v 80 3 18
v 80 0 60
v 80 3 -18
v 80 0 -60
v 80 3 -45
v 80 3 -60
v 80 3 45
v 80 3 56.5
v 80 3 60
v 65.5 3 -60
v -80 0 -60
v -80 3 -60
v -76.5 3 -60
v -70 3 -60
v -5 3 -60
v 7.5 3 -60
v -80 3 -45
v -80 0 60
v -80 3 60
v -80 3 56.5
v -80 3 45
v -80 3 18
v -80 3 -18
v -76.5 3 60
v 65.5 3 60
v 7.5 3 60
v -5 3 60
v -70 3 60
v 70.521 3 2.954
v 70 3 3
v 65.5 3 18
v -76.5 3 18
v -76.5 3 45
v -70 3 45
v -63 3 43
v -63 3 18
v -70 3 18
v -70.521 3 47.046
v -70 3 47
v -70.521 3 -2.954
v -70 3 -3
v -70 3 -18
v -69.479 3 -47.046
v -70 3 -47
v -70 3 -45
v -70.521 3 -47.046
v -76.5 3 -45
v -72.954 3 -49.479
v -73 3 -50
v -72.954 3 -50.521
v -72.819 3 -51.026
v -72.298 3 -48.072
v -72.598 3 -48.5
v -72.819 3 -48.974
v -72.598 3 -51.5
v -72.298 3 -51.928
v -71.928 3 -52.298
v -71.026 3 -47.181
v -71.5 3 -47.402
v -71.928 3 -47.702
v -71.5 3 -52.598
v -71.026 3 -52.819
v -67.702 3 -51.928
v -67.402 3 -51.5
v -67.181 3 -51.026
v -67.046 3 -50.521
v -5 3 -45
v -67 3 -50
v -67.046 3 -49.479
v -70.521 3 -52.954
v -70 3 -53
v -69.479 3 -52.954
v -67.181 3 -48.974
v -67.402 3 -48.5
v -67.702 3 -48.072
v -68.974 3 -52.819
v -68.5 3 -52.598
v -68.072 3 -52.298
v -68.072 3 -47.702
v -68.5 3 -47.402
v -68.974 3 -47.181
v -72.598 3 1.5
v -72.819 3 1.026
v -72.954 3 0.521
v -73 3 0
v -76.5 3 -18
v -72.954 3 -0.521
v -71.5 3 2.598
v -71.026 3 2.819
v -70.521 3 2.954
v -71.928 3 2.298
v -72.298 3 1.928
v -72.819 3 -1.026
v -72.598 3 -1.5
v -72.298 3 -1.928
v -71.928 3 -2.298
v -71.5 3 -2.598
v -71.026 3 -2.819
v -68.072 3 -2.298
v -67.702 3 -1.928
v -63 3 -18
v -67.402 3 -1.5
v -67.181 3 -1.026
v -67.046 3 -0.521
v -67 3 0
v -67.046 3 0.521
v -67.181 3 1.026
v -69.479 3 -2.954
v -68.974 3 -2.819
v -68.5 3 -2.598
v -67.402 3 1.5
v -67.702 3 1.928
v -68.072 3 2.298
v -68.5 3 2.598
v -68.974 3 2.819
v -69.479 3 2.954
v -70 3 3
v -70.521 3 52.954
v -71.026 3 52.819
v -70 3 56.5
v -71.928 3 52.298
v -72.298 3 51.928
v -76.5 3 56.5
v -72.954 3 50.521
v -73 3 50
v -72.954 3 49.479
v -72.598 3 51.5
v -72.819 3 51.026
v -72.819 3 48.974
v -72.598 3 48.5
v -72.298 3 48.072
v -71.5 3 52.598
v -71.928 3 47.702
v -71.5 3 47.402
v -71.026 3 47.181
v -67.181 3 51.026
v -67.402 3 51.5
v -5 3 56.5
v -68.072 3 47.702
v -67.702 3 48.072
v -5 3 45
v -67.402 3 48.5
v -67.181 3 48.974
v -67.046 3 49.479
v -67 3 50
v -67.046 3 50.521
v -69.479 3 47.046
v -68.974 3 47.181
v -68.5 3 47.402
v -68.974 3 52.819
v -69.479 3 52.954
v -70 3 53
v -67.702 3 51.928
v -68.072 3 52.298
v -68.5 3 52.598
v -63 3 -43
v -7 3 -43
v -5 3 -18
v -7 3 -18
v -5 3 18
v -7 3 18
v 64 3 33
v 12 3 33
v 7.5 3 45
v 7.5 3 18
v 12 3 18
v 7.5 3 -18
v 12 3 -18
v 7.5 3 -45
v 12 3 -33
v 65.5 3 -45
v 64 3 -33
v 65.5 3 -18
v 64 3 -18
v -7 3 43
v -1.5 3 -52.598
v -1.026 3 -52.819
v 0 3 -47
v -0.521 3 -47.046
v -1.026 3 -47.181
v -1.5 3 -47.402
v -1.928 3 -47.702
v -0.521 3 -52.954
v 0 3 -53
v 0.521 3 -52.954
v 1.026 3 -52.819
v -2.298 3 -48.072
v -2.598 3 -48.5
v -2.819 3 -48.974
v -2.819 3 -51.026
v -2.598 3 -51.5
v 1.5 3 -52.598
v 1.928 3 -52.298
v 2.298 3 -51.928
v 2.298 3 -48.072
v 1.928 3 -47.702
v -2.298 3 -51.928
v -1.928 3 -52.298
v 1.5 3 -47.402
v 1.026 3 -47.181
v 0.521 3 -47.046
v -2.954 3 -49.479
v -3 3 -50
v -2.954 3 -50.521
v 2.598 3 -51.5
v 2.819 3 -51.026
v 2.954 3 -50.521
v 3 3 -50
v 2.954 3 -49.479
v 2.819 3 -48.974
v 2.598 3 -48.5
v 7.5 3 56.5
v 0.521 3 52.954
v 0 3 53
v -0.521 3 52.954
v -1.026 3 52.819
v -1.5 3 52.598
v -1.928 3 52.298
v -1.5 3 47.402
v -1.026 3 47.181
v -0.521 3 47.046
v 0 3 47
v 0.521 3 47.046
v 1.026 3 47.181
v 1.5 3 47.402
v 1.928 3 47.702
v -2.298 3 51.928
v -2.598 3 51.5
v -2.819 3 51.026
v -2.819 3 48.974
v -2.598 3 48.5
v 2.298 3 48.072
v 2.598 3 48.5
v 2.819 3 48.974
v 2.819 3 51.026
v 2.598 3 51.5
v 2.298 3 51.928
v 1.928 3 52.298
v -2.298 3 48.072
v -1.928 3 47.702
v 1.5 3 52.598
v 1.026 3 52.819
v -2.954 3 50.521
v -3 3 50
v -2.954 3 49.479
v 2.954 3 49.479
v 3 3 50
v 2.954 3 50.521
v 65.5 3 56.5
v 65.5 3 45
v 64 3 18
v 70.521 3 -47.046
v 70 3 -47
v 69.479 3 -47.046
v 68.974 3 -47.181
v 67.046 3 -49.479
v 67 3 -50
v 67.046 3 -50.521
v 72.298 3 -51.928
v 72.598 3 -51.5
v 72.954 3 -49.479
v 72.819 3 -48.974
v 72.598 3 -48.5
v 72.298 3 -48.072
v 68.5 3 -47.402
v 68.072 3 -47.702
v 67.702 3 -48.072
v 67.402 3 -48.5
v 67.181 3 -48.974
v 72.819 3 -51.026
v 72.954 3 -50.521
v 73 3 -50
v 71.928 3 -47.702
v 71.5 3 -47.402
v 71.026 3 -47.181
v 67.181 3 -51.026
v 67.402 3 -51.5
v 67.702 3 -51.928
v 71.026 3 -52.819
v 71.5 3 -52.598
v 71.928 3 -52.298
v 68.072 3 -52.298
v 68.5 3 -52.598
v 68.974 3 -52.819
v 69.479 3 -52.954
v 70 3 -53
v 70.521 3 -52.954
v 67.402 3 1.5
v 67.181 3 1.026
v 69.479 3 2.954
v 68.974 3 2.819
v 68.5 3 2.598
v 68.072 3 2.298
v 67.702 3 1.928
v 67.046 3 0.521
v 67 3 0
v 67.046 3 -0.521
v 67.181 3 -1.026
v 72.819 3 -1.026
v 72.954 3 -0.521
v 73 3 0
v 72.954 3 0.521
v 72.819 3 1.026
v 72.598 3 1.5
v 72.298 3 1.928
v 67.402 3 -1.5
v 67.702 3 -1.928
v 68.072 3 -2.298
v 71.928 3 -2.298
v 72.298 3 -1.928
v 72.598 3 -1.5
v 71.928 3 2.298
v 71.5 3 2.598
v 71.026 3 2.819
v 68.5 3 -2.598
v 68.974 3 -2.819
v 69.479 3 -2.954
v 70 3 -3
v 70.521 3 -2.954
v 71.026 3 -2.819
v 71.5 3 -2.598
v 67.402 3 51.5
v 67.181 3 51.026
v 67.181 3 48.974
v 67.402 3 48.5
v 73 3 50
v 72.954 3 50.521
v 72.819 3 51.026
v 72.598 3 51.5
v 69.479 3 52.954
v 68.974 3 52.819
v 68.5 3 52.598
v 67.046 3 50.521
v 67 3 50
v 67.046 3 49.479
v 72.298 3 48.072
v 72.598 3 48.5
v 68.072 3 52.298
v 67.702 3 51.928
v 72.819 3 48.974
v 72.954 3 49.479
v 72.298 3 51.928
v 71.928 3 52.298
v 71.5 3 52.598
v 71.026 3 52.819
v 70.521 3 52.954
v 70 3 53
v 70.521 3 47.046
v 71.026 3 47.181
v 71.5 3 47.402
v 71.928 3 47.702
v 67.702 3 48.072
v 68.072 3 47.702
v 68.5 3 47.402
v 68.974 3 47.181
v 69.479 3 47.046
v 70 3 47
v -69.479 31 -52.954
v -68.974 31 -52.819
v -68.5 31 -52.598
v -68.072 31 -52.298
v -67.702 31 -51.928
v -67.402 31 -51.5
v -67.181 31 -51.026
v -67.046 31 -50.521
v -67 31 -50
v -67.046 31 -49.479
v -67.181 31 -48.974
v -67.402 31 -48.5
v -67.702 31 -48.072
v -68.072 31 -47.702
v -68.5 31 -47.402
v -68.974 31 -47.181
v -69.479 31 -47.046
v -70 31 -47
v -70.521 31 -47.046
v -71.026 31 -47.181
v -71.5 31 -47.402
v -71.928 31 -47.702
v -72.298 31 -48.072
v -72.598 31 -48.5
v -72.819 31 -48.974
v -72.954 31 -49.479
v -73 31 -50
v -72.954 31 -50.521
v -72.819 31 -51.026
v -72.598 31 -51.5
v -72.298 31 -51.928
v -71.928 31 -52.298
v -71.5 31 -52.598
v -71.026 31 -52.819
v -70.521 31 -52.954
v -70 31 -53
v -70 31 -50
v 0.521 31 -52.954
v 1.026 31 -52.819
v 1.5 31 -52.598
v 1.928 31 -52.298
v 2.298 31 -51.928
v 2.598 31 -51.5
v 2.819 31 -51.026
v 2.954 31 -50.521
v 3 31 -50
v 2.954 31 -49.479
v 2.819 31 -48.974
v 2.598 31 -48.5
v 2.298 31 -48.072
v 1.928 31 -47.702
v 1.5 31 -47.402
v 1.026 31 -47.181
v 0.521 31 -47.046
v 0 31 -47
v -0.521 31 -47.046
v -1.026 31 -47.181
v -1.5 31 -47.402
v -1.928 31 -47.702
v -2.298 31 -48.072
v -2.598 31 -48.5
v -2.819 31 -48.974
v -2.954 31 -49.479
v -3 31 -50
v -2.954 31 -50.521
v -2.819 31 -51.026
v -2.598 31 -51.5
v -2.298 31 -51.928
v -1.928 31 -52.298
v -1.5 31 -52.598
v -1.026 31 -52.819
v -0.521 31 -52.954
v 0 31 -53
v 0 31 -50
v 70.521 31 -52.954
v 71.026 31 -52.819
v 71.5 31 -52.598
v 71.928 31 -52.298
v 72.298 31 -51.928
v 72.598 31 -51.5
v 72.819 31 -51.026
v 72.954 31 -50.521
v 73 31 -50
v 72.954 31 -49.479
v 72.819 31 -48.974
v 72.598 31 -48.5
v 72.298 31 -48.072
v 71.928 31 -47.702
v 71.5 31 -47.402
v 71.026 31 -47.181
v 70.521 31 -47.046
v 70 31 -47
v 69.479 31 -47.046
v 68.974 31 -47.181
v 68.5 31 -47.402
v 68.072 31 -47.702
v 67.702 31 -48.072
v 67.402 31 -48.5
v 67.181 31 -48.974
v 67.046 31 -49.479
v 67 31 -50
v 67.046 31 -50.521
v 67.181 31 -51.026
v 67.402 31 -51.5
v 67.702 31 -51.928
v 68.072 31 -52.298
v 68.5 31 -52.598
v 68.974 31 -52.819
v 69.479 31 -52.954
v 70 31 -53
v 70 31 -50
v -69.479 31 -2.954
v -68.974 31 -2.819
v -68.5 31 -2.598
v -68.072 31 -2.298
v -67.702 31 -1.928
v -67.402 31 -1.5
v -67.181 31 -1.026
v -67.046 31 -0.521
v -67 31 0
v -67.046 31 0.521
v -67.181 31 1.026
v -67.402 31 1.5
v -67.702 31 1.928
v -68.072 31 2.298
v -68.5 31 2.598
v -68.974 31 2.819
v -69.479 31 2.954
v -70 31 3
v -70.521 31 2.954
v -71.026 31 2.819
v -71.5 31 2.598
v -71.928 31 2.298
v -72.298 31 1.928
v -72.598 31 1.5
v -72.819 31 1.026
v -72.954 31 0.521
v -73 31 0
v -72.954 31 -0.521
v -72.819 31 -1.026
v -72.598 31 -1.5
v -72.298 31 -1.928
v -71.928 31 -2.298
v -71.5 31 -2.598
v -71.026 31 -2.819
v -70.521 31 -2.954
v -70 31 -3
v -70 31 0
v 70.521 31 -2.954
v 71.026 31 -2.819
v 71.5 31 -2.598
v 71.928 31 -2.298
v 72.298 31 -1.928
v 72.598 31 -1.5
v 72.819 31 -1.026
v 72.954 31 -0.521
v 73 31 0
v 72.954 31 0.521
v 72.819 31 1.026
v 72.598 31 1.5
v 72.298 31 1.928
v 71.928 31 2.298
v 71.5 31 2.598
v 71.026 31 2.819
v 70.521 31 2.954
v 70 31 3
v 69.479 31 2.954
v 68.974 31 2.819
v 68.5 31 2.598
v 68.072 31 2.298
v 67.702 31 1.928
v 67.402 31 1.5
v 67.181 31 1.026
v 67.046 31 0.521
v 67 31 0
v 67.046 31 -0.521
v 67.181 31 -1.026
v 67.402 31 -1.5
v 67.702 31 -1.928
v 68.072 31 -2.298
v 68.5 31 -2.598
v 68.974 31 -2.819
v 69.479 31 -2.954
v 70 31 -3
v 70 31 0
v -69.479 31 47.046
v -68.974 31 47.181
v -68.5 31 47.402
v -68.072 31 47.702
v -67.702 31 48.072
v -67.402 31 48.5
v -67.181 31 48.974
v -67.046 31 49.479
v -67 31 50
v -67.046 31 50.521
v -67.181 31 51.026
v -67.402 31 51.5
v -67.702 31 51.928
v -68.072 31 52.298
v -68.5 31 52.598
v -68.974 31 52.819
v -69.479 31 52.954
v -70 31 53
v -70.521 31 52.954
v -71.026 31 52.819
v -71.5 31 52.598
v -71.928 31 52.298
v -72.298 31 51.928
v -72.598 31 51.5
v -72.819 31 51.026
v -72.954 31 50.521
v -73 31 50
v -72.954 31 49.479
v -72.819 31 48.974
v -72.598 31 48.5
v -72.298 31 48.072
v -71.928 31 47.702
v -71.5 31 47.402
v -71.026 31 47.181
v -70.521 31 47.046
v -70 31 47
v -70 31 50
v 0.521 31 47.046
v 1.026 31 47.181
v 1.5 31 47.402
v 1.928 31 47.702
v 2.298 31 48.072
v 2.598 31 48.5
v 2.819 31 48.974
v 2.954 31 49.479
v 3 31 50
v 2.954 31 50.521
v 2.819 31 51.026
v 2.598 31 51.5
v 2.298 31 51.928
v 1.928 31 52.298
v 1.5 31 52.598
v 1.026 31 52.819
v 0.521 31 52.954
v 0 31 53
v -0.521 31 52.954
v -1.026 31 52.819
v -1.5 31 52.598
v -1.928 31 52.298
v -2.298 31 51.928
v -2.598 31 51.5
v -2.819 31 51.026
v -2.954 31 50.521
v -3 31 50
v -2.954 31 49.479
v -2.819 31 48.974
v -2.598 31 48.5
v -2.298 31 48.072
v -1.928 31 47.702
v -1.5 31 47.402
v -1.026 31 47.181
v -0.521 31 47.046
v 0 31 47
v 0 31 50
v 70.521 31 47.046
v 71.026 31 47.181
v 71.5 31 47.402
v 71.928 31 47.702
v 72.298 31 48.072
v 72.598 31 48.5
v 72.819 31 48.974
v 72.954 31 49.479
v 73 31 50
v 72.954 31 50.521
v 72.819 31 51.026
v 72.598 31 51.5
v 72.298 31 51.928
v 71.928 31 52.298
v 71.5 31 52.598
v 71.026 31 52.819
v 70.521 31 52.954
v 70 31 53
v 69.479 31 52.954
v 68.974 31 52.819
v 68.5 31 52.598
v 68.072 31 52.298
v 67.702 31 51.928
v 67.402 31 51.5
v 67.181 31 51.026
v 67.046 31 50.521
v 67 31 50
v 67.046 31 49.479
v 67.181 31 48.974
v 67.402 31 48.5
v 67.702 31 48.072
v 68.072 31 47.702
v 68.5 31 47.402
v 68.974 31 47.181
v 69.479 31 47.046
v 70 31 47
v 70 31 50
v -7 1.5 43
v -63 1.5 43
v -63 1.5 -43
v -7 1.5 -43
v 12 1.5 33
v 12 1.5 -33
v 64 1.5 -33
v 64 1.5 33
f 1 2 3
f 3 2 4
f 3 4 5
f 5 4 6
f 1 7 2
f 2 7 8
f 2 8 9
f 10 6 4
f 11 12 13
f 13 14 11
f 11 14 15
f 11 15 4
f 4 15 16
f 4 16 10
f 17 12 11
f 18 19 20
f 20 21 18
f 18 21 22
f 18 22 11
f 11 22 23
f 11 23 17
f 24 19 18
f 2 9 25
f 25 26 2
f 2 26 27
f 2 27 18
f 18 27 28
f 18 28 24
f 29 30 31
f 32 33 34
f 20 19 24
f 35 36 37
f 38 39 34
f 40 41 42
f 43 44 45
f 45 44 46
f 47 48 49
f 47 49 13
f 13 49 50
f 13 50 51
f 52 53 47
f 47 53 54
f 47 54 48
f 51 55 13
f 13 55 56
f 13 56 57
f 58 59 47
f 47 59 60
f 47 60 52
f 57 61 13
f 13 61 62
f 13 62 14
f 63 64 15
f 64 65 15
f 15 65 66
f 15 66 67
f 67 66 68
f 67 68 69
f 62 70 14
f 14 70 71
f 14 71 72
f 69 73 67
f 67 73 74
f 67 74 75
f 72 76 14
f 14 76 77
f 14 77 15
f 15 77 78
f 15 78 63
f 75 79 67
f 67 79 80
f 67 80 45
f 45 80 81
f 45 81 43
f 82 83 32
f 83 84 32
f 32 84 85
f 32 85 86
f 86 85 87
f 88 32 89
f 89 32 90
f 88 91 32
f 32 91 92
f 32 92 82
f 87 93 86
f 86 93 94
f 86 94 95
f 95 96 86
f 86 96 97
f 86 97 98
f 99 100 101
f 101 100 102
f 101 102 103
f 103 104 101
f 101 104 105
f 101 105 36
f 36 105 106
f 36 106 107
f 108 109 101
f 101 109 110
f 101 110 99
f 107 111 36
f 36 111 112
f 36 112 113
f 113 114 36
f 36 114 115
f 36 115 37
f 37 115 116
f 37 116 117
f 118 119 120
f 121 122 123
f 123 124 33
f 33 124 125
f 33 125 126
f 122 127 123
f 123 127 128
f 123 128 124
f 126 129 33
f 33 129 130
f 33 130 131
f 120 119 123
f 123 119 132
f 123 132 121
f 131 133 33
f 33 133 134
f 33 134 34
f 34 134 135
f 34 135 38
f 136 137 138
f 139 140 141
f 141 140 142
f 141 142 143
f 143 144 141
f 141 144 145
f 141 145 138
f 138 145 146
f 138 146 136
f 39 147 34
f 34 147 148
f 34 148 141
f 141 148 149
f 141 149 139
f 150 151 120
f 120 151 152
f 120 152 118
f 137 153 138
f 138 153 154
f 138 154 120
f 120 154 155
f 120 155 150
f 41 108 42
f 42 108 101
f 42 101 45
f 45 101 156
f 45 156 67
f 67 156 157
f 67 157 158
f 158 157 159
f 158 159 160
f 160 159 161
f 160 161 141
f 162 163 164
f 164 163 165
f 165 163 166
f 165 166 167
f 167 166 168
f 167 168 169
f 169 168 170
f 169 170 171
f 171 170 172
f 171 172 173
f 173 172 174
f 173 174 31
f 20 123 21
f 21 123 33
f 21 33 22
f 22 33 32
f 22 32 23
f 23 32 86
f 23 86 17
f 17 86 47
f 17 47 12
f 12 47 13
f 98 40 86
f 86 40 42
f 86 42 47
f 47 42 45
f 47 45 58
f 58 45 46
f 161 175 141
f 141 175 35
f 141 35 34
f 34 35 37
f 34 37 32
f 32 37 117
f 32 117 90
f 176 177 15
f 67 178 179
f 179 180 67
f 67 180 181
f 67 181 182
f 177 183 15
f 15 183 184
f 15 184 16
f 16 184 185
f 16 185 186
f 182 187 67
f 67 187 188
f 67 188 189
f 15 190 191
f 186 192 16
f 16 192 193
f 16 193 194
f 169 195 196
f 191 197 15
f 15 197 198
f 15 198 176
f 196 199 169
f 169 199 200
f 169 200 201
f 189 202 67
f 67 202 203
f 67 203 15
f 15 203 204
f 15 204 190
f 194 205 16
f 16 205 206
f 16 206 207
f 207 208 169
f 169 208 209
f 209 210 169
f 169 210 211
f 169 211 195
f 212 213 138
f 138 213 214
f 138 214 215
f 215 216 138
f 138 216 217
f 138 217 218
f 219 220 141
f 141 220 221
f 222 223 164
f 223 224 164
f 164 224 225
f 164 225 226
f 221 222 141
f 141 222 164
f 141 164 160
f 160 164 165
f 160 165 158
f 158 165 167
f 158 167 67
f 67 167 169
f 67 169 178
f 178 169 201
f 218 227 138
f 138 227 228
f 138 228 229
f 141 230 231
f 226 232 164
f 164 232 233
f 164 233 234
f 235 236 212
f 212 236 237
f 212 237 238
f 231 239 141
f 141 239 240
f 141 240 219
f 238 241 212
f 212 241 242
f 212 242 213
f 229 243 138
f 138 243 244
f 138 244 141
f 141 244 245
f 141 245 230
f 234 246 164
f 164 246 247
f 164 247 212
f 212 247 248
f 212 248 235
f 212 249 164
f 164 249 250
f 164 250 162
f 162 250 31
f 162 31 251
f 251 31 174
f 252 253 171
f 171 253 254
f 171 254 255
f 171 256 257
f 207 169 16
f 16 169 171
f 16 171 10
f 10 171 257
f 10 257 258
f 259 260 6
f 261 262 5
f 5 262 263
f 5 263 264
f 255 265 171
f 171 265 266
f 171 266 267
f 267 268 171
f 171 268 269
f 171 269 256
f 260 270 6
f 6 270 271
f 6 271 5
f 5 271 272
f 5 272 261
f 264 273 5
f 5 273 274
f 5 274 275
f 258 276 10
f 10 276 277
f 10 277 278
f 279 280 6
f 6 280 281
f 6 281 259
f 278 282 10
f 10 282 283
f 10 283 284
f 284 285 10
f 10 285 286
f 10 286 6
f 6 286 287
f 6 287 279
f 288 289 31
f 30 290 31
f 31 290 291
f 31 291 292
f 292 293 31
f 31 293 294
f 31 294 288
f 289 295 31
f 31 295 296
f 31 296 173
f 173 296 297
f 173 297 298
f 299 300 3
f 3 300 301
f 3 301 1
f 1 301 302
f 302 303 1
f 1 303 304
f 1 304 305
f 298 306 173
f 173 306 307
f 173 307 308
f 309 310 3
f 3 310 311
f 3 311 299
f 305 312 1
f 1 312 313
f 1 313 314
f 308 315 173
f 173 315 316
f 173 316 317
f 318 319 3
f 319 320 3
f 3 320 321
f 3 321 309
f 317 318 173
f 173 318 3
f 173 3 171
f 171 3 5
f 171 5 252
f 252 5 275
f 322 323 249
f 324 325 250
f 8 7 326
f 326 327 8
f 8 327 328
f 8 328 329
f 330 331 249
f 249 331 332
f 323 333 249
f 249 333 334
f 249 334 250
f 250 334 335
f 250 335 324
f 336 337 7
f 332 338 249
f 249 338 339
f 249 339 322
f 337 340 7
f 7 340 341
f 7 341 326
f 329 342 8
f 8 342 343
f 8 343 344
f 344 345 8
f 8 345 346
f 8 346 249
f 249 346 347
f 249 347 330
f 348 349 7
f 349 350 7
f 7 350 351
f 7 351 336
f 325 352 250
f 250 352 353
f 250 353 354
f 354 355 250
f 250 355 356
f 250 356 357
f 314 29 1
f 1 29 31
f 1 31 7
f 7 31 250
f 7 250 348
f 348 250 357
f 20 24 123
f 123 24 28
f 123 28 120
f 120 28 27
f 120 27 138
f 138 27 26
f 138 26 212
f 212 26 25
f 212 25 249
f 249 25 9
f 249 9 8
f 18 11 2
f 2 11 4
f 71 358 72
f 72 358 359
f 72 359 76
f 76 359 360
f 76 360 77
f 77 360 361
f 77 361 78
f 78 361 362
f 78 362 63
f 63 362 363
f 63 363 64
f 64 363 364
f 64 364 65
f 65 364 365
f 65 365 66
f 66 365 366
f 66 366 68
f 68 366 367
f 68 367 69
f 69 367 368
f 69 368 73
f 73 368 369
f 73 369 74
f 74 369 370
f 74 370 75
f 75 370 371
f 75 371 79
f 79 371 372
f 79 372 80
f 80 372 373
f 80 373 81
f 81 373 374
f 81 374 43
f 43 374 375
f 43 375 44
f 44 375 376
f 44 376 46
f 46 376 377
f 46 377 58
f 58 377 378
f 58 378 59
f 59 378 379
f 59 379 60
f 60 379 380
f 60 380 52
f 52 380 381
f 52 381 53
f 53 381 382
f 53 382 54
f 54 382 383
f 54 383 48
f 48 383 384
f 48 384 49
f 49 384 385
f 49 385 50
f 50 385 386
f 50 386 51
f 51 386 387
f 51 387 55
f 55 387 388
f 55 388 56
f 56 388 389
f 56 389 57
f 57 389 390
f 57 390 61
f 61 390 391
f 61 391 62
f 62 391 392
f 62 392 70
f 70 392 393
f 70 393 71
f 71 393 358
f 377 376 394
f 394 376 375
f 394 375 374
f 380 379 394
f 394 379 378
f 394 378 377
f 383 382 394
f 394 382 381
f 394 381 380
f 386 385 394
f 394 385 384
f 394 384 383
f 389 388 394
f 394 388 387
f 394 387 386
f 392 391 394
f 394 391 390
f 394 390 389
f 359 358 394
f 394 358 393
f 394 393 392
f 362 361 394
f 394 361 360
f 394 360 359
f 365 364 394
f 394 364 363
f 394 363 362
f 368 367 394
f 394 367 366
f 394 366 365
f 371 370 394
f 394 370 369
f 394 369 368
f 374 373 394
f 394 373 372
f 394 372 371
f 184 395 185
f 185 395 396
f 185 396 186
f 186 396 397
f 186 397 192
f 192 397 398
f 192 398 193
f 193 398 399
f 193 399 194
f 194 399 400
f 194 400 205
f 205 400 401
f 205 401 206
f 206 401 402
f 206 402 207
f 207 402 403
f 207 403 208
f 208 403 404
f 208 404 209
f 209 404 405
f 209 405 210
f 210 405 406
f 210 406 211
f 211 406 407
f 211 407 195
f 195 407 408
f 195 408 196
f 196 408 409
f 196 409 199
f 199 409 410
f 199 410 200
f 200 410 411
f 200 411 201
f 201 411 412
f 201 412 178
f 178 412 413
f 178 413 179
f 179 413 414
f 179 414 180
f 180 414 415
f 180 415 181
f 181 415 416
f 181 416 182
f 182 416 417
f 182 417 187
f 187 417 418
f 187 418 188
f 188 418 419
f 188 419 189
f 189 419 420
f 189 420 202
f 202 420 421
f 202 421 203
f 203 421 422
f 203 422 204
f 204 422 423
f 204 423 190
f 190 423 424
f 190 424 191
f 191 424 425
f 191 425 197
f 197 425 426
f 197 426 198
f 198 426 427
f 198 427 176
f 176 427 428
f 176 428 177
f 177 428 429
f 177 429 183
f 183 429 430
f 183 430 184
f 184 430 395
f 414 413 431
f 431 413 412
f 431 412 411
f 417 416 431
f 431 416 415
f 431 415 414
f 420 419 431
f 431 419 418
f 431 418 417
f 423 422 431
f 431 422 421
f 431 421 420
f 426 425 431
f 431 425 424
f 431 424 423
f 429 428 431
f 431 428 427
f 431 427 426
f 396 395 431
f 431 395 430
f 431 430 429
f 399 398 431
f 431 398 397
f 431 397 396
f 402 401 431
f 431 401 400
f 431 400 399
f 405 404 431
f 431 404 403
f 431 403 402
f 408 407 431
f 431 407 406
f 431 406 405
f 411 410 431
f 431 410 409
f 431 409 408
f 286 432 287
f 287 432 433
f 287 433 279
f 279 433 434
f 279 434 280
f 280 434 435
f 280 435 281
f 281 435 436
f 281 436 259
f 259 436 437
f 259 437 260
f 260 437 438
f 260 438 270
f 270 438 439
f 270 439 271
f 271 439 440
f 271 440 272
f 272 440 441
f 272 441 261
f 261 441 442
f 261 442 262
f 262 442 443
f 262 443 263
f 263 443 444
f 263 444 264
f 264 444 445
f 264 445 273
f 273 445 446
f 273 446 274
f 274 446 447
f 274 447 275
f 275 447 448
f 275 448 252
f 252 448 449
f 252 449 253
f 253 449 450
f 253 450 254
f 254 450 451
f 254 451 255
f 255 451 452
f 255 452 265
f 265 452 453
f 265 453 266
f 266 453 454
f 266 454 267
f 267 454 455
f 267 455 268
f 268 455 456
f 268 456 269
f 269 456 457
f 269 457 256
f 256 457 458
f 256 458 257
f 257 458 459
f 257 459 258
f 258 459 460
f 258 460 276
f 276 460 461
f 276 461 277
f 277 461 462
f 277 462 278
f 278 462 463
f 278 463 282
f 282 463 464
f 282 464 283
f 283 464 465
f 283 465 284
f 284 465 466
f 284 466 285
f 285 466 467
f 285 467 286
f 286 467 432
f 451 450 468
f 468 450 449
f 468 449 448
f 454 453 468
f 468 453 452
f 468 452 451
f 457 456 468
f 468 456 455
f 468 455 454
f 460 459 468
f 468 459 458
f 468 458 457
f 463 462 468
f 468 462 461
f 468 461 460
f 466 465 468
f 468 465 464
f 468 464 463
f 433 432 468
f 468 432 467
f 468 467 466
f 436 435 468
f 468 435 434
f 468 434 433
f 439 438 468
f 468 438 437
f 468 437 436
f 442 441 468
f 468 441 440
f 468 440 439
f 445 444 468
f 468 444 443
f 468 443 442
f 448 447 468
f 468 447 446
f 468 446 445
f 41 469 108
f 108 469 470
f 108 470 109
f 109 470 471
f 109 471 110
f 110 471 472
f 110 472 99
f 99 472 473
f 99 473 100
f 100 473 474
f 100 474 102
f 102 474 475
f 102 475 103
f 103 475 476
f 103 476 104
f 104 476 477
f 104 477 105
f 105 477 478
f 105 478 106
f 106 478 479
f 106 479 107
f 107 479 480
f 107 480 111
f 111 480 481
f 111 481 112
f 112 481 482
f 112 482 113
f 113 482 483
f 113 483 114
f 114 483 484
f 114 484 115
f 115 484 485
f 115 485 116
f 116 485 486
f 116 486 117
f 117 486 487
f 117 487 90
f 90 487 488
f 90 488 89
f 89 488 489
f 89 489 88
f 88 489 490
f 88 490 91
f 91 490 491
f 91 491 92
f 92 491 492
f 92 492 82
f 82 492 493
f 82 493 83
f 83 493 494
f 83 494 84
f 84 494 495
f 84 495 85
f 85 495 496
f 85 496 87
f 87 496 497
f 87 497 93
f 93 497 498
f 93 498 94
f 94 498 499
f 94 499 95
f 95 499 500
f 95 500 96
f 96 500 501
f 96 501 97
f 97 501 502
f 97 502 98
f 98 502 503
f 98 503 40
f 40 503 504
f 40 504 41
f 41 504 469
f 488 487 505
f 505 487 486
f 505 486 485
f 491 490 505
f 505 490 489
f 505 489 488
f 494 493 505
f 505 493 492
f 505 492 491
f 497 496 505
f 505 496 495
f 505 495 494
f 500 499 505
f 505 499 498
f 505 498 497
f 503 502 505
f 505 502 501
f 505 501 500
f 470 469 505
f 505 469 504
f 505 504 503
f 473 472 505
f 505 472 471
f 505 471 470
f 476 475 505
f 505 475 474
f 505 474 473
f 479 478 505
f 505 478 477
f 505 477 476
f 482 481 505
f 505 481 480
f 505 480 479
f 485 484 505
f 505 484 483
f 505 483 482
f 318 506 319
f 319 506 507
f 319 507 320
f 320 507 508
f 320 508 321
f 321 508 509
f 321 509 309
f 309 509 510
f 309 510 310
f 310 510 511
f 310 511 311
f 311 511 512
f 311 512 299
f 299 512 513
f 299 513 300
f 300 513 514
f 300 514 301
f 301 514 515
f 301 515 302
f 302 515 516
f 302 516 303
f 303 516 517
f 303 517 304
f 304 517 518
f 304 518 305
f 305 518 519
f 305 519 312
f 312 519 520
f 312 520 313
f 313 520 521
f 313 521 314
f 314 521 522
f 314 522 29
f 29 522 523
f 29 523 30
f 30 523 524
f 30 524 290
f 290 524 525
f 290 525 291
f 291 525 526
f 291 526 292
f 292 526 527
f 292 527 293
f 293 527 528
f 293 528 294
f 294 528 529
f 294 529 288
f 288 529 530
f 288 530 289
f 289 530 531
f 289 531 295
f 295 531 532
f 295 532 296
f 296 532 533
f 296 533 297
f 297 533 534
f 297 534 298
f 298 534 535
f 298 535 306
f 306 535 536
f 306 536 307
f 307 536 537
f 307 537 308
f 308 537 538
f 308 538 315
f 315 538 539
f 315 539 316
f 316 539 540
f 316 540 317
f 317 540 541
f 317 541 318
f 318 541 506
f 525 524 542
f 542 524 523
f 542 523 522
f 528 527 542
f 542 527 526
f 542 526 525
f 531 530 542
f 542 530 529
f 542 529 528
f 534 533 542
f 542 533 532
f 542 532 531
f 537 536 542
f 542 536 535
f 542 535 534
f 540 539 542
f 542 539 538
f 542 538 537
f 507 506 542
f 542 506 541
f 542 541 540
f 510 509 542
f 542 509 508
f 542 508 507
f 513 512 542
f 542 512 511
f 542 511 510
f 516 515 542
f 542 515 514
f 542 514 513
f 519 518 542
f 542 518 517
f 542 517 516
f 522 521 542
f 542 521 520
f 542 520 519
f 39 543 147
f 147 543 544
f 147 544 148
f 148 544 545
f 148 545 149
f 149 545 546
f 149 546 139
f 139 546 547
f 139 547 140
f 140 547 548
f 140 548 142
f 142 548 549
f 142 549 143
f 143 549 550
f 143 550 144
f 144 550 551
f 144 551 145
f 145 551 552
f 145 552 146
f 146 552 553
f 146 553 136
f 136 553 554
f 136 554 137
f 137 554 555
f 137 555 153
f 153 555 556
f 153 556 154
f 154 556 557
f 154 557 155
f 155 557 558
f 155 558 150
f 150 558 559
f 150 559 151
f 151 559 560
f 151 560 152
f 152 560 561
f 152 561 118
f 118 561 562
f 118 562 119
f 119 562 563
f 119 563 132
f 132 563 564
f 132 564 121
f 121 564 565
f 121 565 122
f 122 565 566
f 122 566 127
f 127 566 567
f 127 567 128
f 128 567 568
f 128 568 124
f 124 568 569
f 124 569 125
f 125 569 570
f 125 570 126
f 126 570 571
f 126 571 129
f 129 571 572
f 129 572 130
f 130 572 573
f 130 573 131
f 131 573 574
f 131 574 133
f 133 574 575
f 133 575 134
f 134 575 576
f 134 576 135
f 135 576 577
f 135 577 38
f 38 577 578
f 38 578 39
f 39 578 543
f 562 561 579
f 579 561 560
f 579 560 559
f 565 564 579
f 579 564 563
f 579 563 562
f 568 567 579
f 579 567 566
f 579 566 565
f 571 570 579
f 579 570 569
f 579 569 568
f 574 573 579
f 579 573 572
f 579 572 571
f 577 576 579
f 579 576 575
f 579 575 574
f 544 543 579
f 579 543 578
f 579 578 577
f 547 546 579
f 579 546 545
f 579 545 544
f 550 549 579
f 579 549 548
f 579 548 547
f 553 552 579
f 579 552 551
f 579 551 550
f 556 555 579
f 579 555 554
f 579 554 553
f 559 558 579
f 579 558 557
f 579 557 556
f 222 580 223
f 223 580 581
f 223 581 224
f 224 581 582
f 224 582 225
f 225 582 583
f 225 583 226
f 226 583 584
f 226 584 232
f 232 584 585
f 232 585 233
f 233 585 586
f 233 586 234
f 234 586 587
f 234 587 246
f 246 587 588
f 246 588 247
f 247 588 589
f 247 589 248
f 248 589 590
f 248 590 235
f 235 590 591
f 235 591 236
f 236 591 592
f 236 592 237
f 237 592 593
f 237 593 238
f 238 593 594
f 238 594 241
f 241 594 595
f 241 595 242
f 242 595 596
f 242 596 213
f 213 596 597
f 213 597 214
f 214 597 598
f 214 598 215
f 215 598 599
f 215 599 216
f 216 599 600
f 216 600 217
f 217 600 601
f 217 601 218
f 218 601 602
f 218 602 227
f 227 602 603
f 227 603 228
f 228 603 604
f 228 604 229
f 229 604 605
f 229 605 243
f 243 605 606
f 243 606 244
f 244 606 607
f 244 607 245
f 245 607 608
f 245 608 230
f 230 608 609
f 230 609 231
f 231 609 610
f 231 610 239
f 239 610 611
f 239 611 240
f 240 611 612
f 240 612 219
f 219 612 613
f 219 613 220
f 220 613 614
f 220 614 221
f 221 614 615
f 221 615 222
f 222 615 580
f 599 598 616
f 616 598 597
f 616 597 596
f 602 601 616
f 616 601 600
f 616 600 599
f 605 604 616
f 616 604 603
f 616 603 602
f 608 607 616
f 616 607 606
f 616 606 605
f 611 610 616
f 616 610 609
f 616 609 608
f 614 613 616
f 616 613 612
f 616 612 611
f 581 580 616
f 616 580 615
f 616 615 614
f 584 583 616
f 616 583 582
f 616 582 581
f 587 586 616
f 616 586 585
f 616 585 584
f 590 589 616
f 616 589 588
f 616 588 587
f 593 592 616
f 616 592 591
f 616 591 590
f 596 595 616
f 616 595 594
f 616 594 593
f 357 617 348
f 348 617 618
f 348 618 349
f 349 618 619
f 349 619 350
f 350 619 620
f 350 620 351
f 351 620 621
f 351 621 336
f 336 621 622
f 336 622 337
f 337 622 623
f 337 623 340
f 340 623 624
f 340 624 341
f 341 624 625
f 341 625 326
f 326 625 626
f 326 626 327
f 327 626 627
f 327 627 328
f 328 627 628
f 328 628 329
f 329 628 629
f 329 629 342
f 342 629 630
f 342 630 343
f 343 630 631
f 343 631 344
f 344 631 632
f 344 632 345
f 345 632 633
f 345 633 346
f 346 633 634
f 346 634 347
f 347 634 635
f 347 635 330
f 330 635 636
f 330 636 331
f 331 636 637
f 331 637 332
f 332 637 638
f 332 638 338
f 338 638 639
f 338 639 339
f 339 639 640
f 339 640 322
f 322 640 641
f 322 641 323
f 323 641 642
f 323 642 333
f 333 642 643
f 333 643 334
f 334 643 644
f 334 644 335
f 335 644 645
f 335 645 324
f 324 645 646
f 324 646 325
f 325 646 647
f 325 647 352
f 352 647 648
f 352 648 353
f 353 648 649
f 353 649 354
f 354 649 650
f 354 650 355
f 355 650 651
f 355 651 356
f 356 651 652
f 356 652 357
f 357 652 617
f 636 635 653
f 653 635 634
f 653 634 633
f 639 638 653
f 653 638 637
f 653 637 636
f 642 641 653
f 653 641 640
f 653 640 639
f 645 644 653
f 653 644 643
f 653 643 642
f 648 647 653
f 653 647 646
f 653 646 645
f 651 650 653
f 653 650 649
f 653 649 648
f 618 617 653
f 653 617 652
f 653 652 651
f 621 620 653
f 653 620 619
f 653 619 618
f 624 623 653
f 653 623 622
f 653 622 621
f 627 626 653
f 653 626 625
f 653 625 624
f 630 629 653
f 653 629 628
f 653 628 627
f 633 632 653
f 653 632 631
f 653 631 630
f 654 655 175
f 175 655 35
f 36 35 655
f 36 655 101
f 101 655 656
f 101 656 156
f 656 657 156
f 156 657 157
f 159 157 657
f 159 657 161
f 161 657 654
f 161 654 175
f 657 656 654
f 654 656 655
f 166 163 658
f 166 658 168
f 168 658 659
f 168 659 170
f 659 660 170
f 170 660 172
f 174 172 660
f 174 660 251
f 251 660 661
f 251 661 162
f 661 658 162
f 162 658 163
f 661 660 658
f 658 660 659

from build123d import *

# Parameters (mm, degrees)
SKETCH1_W           = 160
SKETCH1_H           = 120
BOSS_EXTRUDE1_DEPTH = 3
SKETCH2_R           = 3
BOSS_EXTRUDE2_DEPTH = 28
SKETCH3_W           = 56
SKETCH3_H           = 86
CUT_EXTRUDE1_DEPTH  = 1.5
SKETCH5_W           = 52
SKETCH5_H           = 66
CUT_EXTRUDE2_DEPTH  = 1.5


with BuildPart() as part:
    # Sketch1 → Boss-Extrude1 (new body)
    with BuildSketch(Plane(origin=(0, 0, 0), x_dir=(1, 0, 0), z_dir=(0, 1, 0))):
        Rectangle(SKETCH1_W, SKETCH1_H)
    extrude(amount=BOSS_EXTRUDE1_DEPTH)

    # Sketch2 → Boss-Extrude2 (add)
    with BuildSketch(Plane(origin=(0, 3, 0), x_dir=(1, 0, 0), z_dir=(0, 1, 0))):
        with Locations(Location((-70, 50, 0), (0, 0, 90))):
            Circle(SKETCH2_R)
        with Locations(Location((0, 50, 0), (0, 0, 90))):
            Circle(SKETCH2_R)
        with Locations(Location((70, 50, 0), (0, 0, 90))):
            Circle(SKETCH2_R)
        with Locations(Location((-70, 0, 0), (0, 0, 90))):
            Circle(SKETCH2_R)
        with Locations(Location((70, 0, 0), (0, 0, 90))):
            Circle(SKETCH2_R)
        with Locations(Location((-70, -50, 0), (0, 0, 90))):
            Circle(SKETCH2_R)
        with Locations(Location((0, -50, 0), (0, 0, 90))):
            Circle(SKETCH2_R)
        with Locations(Location((70, -50, 0), (0, 0, 90))):
            Circle(SKETCH2_R)
    extrude(amount=BOSS_EXTRUDE2_DEPTH)

    # Sketch3 → Cut-Extrude1 (cut)
    with BuildSketch(Plane(origin=(0, 3, 0), x_dir=(1, 0, 0), z_dir=(0, 1, 0))):
        with Locations((-35, 0)):
            Rectangle(SKETCH3_W, SKETCH3_H)
    extrude(amount=-CUT_EXTRUDE1_DEPTH, mode=Mode.SUBTRACT)

    # Sketch5 → Cut-Extrude2 (cut)
    with BuildSketch(Plane(origin=(0, 3, 0), x_dir=(1, 0, 0), z_dir=(0, 1, 0))):
        with Locations((38, 0)):
            Rectangle(SKETCH5_W, SKETCH5_H)
    extrude(amount=-CUT_EXTRUDE2_DEPTH, mode=Mode.SUBTRACT)


solid = part.part
